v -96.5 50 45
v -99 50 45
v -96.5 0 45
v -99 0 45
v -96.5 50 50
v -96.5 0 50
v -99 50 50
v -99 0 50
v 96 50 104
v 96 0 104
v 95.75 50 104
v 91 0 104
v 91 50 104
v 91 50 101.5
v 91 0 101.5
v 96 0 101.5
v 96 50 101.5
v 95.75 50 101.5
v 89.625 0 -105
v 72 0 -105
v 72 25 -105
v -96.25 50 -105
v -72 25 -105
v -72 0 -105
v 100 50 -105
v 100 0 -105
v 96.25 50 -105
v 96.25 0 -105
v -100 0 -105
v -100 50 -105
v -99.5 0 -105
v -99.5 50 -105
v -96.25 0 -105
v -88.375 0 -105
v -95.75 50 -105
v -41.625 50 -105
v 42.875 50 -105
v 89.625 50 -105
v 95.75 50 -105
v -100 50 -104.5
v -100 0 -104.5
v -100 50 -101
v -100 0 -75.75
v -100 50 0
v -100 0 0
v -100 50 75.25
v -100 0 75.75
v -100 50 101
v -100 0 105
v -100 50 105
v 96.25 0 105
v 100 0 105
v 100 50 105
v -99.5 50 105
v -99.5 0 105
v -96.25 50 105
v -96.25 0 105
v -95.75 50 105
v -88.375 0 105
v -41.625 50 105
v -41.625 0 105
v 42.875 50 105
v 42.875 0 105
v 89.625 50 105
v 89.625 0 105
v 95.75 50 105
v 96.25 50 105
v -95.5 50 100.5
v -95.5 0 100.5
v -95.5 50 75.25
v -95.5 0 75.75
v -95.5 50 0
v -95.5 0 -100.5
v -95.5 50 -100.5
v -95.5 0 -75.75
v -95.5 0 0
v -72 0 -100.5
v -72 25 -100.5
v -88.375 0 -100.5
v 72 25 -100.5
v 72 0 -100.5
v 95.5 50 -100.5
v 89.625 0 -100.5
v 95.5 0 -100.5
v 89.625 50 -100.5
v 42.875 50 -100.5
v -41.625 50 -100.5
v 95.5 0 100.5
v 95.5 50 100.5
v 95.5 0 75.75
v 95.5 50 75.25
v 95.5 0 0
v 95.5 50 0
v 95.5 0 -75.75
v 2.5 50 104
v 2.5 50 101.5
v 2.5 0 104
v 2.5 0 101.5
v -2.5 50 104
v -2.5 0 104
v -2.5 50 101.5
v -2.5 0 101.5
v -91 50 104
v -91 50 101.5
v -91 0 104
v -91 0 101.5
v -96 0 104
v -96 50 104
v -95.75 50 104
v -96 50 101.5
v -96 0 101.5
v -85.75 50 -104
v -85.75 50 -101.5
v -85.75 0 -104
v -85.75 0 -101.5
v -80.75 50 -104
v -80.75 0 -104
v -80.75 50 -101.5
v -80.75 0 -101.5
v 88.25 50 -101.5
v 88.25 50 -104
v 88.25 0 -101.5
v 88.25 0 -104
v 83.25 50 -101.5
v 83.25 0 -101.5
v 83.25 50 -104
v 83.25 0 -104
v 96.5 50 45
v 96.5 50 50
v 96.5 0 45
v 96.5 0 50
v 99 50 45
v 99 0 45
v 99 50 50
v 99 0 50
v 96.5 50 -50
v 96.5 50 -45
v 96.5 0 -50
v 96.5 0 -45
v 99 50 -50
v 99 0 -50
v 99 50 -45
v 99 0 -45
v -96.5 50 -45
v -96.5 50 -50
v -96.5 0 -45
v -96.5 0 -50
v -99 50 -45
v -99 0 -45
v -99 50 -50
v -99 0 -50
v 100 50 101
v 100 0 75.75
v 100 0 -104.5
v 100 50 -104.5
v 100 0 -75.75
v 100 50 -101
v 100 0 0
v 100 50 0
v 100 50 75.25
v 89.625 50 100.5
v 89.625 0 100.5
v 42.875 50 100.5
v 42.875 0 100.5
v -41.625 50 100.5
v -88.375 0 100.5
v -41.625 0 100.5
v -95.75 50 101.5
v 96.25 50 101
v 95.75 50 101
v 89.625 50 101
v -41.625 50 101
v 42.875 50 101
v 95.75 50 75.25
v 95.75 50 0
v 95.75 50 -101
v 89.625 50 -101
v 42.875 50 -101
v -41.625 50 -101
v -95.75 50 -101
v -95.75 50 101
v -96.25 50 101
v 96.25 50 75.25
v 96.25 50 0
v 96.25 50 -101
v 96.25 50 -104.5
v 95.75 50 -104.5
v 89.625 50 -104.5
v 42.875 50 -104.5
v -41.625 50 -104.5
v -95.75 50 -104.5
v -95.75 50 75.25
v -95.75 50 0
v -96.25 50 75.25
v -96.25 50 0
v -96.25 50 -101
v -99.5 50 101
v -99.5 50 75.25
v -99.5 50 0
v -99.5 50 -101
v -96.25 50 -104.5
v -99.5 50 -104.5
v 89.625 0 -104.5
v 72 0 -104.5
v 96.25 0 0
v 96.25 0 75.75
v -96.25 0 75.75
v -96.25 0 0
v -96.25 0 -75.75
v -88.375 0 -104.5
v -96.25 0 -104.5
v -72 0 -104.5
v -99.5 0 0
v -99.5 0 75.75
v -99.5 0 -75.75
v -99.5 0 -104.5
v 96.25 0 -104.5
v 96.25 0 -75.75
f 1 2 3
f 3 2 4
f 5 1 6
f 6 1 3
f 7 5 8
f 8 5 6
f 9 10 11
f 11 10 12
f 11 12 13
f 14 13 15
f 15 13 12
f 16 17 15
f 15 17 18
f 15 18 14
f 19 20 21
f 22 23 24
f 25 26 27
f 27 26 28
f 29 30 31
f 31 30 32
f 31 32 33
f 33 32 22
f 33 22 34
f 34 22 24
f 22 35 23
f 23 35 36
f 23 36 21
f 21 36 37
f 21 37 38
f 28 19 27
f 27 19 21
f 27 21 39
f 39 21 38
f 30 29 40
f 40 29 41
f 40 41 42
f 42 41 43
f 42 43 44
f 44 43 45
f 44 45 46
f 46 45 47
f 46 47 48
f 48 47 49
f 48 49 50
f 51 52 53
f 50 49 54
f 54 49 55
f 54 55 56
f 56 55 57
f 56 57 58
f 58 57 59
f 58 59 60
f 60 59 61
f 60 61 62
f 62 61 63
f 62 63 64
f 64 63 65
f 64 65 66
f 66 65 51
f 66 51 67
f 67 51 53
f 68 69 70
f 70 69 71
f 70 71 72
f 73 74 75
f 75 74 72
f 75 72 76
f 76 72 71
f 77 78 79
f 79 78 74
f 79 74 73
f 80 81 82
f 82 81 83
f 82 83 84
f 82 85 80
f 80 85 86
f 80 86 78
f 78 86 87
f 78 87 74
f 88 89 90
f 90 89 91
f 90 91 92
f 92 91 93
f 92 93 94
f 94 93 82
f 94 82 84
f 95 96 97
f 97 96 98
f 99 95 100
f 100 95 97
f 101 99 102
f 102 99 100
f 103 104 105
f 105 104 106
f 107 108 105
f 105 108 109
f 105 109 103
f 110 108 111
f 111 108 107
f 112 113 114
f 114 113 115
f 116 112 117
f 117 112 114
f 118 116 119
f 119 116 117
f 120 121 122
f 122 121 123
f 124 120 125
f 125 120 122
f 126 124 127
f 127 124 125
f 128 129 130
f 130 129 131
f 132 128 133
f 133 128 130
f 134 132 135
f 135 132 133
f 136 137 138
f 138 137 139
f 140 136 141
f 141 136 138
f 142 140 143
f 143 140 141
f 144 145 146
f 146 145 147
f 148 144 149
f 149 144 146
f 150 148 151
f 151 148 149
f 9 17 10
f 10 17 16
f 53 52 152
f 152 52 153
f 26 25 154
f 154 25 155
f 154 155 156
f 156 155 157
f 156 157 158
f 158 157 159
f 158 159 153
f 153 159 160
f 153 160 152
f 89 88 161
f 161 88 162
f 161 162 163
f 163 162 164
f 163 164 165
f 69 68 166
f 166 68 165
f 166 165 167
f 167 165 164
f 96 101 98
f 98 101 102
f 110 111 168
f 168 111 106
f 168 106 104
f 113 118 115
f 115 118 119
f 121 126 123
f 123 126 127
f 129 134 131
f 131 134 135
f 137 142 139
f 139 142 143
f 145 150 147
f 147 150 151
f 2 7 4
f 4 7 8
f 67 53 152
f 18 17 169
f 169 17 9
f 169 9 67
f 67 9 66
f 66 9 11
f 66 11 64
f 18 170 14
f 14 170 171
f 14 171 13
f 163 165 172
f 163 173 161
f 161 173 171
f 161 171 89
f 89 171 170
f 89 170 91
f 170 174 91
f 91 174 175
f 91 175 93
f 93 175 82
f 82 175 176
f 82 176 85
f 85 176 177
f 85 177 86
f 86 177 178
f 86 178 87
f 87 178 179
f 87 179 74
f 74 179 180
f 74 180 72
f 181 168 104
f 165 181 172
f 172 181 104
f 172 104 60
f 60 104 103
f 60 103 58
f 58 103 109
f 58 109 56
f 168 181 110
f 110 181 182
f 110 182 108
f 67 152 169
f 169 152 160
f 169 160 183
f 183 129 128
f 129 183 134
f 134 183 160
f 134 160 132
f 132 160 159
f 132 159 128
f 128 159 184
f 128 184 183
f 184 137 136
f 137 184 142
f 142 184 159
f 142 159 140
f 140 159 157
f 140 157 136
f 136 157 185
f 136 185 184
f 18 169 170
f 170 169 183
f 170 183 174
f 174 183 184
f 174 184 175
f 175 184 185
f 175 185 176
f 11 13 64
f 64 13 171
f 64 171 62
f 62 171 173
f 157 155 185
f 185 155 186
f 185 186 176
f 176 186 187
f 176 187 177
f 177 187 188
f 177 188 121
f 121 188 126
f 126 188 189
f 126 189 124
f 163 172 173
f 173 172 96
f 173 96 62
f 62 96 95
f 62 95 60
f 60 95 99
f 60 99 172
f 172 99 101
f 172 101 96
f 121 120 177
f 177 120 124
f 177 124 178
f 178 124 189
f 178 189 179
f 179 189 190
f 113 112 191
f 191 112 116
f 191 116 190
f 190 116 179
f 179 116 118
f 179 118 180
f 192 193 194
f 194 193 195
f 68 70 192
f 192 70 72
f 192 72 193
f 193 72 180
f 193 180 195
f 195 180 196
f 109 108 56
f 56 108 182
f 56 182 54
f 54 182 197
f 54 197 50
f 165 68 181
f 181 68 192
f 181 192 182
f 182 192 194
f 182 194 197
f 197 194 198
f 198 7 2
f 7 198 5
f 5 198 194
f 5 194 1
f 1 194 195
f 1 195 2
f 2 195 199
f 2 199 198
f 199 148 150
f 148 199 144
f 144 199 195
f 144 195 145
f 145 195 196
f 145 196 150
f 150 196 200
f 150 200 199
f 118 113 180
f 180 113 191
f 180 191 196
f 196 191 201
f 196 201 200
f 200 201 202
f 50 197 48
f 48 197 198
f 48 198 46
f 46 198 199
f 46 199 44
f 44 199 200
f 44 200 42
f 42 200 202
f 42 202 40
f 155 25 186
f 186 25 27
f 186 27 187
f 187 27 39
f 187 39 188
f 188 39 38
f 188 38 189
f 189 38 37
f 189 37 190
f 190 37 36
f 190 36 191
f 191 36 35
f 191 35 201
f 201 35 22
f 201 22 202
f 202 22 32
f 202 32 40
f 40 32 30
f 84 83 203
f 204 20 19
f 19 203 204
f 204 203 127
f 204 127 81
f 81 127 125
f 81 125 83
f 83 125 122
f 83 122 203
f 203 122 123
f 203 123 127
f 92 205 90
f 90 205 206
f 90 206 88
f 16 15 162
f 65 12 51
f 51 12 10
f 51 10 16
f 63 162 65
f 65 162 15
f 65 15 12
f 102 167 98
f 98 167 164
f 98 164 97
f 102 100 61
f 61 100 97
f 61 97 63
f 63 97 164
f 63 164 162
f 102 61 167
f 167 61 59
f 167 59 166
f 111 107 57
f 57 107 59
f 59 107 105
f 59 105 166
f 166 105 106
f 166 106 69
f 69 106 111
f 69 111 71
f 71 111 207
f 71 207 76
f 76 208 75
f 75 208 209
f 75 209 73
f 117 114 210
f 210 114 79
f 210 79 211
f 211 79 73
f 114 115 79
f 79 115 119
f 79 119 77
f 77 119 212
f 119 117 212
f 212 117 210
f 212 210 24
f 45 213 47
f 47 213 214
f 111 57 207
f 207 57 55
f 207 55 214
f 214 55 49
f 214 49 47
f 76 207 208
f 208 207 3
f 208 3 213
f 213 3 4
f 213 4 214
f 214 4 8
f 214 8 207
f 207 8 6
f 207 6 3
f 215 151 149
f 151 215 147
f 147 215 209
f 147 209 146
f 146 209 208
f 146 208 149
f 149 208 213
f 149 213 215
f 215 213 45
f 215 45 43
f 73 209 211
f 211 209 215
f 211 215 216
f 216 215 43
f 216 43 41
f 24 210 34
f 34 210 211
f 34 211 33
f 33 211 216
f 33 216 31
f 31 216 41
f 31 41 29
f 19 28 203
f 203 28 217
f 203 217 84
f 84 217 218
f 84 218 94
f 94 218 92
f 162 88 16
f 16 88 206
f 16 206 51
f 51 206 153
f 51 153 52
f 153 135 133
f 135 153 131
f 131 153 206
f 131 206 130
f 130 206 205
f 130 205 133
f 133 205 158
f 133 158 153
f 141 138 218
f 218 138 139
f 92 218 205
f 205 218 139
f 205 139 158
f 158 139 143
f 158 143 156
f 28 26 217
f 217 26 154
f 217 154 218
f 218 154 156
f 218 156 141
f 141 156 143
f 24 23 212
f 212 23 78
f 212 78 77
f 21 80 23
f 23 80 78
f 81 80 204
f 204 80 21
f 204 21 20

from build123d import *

# Parameters (mm, degrees)
SKETCH1_W        = 200
SKETCH1_H        = 210
SKETCH1_W_2      = 191
SKETCH1_H_2      = 201
SKETCH1_W_3      = 5
SKETCH1_H_3      = 2.5
SKETCH1_W_4      = 2.5
SKETCH1_H_4      = 5
MAINBODY_DEPTH   = 50
IRHOLE_START     = -4.5
IRHOLE_OUTLINE_W = 144
IRHOLE_OUTLINE_H = 25
IRHOLE_DEPTH     = 4.5


# Read off the part's stored shape, not the designer's step: IRHole
with BuildPart() as part:
    # Sketch1 → MainBody (new body)
    with BuildSketch(Plane(origin=(0, 0, 0), x_dir=(1, 0, 0), z_dir=(0, 1, 0))):
        Rectangle(SKETCH1_W, SKETCH1_H)
        Rectangle(SKETCH1_W_2, SKETCH1_H_2, mode=Mode.SUBTRACT)
        with Locations((93.5, -102.75)):
            Rectangle(SKETCH1_W_3, SKETCH1_H_3, mode=Mode.SUBTRACT)
        with Locations((0, -102.75)):
            Rectangle(SKETCH1_W_3, SKETCH1_H_3, mode=Mode.SUBTRACT)
        with Locations((-93.5, -102.75)):
            Rectangle(SKETCH1_W_3, SKETCH1_H_3, mode=Mode.SUBTRACT)
        with Locations((-83.25, 102.75)):
            Rectangle(SKETCH1_W_3, SKETCH1_H_3, mode=Mode.SUBTRACT)
        with Locations((85.75, 102.75)):
            Rectangle(SKETCH1_W_3, SKETCH1_H_3, mode=Mode.SUBTRACT)
        with Locations((97.75, -47.5)):
            Rectangle(SKETCH1_W_4, SKETCH1_H_4, mode=Mode.SUBTRACT)
        with Locations((97.75, 47.5)):
            Rectangle(SKETCH1_W_4, SKETCH1_H_4, mode=Mode.SUBTRACT)
        with Locations((-97.75, -47.5)):
            Rectangle(SKETCH1_W_4, SKETCH1_H_4, mode=Mode.SUBTRACT)
        with Locations((-97.75, 47.5)):
            Rectangle(SKETCH1_W_4, SKETCH1_H_4, mode=Mode.SUBTRACT)
    extrude(amount=MAINBODY_DEPTH)

    # IRHole outline → IRHole (cut)
    with BuildSketch(Plane(origin=(0, 0, -105), x_dir=(-1, 0, 0), z_dir=(0, 0, -1)).offset(IRHOLE_START)):
        with Locations((0, 12.5)):
            Rectangle(IRHOLE_OUTLINE_W, IRHOLE_OUTLINE_H)
    extrude(amount=IRHOLE_DEPTH, mode=Mode.SUBTRACT)


solid = part.part
